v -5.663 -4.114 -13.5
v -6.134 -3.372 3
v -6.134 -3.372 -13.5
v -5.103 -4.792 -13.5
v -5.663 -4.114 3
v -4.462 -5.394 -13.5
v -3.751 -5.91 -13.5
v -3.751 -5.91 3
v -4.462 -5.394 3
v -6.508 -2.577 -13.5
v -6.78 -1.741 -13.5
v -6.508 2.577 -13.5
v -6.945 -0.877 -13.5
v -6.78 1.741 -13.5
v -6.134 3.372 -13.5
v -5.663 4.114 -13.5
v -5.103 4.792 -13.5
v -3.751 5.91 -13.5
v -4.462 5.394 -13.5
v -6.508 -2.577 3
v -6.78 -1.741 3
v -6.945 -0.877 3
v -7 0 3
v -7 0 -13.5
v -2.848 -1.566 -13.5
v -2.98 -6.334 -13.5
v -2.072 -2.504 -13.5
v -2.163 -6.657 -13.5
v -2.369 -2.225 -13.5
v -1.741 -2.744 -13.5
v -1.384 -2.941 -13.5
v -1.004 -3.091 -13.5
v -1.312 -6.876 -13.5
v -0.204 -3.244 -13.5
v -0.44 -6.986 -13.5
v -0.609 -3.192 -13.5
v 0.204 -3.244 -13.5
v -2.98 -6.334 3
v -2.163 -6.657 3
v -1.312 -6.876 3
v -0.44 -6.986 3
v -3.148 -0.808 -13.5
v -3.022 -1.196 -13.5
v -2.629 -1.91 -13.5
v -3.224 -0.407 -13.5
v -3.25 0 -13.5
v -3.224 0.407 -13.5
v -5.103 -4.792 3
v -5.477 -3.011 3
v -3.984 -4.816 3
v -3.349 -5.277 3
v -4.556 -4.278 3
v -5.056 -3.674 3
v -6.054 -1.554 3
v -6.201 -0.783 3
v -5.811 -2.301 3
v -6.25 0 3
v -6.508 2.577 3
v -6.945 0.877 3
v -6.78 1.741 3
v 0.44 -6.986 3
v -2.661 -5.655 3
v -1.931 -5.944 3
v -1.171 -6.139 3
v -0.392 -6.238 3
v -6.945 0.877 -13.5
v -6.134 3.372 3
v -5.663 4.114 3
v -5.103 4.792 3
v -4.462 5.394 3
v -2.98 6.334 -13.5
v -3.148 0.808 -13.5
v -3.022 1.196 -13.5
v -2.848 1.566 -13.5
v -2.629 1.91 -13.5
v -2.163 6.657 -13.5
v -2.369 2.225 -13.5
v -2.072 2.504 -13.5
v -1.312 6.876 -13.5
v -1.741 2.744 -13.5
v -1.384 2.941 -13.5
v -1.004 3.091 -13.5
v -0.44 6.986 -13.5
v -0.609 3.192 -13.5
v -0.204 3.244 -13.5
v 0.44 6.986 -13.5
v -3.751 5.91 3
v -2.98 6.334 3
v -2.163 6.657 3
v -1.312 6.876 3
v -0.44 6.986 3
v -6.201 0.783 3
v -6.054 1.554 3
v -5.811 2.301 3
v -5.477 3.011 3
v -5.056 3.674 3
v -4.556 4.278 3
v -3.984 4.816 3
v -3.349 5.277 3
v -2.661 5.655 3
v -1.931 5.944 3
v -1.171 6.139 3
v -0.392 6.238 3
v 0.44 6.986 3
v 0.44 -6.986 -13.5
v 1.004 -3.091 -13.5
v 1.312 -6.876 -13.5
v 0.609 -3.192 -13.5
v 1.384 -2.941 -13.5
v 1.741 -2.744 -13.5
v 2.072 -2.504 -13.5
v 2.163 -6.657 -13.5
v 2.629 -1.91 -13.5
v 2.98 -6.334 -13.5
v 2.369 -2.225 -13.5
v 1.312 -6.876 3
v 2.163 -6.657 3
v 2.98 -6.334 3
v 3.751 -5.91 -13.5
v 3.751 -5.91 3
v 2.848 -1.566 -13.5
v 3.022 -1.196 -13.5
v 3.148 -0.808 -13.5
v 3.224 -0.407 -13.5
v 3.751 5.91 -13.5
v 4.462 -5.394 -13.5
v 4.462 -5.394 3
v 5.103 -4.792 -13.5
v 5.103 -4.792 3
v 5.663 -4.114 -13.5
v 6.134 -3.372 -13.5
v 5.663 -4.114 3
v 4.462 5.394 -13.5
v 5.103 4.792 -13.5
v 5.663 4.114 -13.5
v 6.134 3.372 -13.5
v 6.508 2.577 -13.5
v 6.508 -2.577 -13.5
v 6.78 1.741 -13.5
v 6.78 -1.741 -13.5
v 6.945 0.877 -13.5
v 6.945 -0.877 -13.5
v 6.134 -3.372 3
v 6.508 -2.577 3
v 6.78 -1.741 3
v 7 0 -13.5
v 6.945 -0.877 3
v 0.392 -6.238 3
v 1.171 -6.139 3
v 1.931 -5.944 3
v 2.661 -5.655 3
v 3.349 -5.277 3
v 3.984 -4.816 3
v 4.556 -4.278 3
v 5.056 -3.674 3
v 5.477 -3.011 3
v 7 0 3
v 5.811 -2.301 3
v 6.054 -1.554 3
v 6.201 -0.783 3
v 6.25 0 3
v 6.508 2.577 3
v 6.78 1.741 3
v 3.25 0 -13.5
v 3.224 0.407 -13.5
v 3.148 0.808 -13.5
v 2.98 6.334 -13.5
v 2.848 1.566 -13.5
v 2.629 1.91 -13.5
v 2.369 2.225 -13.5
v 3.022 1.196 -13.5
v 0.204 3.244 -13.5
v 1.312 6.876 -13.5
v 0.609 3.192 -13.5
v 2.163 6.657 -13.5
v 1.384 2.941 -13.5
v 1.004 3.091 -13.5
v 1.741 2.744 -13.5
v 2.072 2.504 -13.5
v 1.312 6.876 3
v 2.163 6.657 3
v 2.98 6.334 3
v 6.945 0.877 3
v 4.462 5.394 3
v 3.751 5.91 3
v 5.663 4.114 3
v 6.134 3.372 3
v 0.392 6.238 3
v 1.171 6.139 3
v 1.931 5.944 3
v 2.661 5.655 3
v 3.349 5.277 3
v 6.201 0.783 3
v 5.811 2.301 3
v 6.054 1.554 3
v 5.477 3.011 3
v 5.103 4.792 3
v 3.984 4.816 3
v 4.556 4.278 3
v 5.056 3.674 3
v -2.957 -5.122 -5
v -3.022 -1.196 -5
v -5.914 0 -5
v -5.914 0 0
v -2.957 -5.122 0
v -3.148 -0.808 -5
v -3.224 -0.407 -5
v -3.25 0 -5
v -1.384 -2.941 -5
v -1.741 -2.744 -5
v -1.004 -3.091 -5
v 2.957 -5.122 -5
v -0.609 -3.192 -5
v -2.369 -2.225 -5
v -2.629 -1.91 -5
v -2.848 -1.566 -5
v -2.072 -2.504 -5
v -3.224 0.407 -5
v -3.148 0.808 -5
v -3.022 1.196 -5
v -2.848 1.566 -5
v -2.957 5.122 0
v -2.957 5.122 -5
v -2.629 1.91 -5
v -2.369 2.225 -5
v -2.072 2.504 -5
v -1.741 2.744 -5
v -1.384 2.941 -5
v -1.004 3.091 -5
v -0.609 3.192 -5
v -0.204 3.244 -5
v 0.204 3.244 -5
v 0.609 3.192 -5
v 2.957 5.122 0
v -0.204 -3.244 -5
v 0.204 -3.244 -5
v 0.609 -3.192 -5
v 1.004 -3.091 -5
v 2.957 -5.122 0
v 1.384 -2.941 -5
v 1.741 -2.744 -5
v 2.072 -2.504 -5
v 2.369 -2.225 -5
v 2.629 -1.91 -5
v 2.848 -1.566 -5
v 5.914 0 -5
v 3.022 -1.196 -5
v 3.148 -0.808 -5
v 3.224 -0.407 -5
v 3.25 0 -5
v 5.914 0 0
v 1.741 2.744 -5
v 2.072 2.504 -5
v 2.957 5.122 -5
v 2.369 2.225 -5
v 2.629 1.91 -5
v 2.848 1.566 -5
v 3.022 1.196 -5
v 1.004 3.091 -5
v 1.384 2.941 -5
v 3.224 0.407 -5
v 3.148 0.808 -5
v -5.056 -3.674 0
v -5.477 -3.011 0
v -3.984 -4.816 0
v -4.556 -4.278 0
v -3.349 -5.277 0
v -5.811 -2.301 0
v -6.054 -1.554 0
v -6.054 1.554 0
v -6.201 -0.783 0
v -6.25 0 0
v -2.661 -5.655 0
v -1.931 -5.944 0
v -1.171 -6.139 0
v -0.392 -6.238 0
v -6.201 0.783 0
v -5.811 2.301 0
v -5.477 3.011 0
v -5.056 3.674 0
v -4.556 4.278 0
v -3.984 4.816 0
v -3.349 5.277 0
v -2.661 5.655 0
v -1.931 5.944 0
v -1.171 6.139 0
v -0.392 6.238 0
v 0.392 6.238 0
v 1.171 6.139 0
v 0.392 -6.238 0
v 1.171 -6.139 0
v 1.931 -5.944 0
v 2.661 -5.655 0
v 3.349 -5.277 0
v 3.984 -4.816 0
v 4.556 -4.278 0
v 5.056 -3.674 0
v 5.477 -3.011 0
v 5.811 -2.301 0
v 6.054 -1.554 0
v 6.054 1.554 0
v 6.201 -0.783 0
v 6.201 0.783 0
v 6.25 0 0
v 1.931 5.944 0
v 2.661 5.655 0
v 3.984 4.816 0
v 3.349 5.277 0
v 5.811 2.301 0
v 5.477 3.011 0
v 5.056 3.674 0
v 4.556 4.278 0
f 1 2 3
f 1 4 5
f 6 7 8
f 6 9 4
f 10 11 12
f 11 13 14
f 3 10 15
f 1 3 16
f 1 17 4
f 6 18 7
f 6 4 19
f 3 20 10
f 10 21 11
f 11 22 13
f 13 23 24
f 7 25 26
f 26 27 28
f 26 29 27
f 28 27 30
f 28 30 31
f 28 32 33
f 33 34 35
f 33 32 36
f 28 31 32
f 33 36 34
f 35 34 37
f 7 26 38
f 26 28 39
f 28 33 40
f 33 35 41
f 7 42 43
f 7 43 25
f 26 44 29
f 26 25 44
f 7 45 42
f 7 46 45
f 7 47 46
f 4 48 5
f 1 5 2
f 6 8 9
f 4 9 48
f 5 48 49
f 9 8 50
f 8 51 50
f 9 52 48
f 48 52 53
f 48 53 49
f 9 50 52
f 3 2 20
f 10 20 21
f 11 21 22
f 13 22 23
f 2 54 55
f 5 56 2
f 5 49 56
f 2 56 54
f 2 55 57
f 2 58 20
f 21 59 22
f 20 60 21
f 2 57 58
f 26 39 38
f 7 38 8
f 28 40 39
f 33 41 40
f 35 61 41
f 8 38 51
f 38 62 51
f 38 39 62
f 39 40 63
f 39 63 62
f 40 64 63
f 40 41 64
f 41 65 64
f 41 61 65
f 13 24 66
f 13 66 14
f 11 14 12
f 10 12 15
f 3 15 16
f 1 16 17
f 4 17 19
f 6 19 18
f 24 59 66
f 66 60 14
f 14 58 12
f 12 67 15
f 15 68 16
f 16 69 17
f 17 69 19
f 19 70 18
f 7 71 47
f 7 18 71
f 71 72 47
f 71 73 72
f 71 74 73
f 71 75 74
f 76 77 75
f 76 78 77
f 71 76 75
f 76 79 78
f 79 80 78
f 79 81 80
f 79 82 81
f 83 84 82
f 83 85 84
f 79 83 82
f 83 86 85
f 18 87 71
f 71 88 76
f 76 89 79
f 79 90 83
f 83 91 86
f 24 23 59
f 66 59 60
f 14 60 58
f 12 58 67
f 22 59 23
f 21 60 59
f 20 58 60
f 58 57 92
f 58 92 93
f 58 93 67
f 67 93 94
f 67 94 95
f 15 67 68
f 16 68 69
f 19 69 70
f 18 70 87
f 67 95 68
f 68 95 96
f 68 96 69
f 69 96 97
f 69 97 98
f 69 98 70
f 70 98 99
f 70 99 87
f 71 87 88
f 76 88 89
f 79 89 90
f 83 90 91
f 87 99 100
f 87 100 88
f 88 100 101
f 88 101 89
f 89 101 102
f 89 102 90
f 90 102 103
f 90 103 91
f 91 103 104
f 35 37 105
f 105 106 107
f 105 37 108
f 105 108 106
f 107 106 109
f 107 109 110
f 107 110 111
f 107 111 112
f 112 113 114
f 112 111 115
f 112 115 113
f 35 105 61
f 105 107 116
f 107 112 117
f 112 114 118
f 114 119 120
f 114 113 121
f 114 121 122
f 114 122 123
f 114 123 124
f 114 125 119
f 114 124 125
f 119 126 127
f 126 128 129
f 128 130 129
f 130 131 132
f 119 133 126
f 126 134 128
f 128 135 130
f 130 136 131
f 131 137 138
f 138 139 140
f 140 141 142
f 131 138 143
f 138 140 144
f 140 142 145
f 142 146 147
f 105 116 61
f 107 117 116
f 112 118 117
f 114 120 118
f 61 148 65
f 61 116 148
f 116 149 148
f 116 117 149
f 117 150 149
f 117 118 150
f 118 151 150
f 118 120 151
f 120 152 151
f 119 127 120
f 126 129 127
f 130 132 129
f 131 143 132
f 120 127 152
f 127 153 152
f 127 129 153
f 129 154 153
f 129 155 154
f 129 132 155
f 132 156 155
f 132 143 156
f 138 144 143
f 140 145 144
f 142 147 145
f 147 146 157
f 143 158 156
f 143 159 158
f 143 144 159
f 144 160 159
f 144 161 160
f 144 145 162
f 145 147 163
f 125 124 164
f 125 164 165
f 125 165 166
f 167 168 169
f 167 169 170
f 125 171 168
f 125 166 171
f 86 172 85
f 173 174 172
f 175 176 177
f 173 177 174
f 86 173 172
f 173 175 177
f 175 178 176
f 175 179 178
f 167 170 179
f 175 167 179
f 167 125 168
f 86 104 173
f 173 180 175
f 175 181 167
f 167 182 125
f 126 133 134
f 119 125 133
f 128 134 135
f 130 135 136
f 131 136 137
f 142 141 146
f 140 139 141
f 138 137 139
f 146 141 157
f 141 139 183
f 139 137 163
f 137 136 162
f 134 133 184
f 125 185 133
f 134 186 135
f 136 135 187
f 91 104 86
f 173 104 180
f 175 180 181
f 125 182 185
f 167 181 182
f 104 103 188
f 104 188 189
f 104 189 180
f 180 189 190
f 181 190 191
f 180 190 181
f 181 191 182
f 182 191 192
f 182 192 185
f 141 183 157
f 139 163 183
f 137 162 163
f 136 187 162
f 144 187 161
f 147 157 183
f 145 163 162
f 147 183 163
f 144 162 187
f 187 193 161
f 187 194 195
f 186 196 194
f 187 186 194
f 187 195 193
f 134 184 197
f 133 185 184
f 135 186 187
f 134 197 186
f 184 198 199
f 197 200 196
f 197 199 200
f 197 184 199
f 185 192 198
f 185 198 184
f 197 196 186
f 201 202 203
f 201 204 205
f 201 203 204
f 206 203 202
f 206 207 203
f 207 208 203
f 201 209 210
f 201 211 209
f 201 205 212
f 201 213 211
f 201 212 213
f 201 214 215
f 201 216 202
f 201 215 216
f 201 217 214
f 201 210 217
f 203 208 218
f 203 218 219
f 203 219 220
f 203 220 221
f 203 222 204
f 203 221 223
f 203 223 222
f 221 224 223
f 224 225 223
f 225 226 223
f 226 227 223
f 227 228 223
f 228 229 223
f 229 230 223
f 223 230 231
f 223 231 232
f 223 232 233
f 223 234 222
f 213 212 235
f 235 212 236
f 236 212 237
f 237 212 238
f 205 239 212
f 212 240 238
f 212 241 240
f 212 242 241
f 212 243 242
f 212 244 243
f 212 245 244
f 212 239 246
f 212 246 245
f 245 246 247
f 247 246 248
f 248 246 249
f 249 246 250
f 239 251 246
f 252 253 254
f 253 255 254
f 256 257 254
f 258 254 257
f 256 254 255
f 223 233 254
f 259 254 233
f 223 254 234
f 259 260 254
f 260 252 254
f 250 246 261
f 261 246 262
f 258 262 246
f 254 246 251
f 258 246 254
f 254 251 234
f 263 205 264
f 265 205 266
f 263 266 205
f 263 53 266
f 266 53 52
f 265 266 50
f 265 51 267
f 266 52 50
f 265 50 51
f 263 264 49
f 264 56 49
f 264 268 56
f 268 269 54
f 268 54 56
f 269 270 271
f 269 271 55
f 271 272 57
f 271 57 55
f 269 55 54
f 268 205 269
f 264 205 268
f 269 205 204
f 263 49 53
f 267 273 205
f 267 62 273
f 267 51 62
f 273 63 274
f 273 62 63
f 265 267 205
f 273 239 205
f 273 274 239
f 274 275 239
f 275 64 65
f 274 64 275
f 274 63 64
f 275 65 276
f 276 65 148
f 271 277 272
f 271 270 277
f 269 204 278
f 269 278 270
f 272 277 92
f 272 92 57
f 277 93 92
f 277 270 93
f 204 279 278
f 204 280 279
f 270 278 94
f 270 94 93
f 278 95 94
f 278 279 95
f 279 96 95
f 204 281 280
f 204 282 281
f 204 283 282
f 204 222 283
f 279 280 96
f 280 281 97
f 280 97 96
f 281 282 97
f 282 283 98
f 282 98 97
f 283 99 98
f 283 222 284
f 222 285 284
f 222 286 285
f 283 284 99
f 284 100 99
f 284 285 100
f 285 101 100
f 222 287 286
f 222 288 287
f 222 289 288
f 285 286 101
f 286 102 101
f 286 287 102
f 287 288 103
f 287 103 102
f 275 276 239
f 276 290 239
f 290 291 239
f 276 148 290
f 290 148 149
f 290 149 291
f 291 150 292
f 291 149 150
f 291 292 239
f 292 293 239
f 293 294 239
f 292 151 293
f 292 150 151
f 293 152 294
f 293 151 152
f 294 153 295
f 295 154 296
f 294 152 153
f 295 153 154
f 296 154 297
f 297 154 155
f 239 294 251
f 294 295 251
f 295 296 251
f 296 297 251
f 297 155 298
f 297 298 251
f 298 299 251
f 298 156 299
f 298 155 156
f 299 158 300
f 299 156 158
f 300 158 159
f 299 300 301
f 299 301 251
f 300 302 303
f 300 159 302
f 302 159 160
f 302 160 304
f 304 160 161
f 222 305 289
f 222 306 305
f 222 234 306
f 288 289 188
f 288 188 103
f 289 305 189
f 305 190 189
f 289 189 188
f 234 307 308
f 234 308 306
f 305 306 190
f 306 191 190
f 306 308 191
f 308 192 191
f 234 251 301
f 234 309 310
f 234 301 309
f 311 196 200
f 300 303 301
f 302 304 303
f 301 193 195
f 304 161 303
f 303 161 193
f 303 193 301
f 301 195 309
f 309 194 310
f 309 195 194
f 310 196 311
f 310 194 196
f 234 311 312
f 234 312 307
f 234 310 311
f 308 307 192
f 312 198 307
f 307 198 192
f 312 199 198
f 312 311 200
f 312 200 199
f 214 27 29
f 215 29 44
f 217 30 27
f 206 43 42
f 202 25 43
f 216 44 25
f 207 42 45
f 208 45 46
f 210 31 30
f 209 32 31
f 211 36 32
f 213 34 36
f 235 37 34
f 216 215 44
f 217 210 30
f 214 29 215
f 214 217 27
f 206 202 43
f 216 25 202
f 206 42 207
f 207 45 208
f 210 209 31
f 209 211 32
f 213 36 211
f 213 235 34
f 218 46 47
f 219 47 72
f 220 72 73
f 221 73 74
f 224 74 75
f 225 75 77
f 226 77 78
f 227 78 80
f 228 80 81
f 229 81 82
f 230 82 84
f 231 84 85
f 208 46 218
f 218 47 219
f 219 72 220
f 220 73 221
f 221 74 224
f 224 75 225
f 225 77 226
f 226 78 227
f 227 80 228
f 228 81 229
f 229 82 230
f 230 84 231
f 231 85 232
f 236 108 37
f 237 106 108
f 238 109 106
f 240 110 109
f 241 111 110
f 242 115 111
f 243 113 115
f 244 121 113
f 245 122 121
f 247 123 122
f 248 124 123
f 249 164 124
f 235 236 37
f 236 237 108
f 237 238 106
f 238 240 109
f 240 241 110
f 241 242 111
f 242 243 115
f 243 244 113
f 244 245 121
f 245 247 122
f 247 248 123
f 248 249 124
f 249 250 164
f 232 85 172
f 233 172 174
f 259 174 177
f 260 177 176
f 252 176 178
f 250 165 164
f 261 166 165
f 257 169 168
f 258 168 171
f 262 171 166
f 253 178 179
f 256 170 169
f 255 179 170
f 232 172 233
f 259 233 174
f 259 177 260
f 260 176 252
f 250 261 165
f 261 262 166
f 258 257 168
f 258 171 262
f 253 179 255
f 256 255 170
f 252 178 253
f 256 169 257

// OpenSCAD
$fn = 50;


difference() {
	union() {
		translate(v = [0, 0, -13.5000000000]) {
			cylinder(h = 16.5000000000, r = 7.0000000000);
		}
		#translate(v = [0, 0, -15.0000000000]) {
			cylinder(h = 15, r = 2.8750000000);
		}
	}
	union() {
		translate(v = [0, 0, 0]) {
			rotate(a = [0, 0, 0]) {
				difference() {
					union() {
						translate(v = [0, 0, -5]) {
							linear_extrude(height = 5) {
								polygon(points = [[5.9142500000, 0.0000000000], [2.9571250000, 5.1218907443], [-2.9571250000, 5.1218907443], [-5.9142500000, 0.0000000000], [-2.9571250000, -5.1218907443], [2.9571250000, -5.1218907443]]);
							}
						}
					}
					union();
				}
			}
		}
		#cylinder(h = 3, r = 6.2500000000);
		#translate(v = [0, 0, -100.0000000000]) {
			cylinder(h = 200, r = 3.2500000000);
		}
	}
}
